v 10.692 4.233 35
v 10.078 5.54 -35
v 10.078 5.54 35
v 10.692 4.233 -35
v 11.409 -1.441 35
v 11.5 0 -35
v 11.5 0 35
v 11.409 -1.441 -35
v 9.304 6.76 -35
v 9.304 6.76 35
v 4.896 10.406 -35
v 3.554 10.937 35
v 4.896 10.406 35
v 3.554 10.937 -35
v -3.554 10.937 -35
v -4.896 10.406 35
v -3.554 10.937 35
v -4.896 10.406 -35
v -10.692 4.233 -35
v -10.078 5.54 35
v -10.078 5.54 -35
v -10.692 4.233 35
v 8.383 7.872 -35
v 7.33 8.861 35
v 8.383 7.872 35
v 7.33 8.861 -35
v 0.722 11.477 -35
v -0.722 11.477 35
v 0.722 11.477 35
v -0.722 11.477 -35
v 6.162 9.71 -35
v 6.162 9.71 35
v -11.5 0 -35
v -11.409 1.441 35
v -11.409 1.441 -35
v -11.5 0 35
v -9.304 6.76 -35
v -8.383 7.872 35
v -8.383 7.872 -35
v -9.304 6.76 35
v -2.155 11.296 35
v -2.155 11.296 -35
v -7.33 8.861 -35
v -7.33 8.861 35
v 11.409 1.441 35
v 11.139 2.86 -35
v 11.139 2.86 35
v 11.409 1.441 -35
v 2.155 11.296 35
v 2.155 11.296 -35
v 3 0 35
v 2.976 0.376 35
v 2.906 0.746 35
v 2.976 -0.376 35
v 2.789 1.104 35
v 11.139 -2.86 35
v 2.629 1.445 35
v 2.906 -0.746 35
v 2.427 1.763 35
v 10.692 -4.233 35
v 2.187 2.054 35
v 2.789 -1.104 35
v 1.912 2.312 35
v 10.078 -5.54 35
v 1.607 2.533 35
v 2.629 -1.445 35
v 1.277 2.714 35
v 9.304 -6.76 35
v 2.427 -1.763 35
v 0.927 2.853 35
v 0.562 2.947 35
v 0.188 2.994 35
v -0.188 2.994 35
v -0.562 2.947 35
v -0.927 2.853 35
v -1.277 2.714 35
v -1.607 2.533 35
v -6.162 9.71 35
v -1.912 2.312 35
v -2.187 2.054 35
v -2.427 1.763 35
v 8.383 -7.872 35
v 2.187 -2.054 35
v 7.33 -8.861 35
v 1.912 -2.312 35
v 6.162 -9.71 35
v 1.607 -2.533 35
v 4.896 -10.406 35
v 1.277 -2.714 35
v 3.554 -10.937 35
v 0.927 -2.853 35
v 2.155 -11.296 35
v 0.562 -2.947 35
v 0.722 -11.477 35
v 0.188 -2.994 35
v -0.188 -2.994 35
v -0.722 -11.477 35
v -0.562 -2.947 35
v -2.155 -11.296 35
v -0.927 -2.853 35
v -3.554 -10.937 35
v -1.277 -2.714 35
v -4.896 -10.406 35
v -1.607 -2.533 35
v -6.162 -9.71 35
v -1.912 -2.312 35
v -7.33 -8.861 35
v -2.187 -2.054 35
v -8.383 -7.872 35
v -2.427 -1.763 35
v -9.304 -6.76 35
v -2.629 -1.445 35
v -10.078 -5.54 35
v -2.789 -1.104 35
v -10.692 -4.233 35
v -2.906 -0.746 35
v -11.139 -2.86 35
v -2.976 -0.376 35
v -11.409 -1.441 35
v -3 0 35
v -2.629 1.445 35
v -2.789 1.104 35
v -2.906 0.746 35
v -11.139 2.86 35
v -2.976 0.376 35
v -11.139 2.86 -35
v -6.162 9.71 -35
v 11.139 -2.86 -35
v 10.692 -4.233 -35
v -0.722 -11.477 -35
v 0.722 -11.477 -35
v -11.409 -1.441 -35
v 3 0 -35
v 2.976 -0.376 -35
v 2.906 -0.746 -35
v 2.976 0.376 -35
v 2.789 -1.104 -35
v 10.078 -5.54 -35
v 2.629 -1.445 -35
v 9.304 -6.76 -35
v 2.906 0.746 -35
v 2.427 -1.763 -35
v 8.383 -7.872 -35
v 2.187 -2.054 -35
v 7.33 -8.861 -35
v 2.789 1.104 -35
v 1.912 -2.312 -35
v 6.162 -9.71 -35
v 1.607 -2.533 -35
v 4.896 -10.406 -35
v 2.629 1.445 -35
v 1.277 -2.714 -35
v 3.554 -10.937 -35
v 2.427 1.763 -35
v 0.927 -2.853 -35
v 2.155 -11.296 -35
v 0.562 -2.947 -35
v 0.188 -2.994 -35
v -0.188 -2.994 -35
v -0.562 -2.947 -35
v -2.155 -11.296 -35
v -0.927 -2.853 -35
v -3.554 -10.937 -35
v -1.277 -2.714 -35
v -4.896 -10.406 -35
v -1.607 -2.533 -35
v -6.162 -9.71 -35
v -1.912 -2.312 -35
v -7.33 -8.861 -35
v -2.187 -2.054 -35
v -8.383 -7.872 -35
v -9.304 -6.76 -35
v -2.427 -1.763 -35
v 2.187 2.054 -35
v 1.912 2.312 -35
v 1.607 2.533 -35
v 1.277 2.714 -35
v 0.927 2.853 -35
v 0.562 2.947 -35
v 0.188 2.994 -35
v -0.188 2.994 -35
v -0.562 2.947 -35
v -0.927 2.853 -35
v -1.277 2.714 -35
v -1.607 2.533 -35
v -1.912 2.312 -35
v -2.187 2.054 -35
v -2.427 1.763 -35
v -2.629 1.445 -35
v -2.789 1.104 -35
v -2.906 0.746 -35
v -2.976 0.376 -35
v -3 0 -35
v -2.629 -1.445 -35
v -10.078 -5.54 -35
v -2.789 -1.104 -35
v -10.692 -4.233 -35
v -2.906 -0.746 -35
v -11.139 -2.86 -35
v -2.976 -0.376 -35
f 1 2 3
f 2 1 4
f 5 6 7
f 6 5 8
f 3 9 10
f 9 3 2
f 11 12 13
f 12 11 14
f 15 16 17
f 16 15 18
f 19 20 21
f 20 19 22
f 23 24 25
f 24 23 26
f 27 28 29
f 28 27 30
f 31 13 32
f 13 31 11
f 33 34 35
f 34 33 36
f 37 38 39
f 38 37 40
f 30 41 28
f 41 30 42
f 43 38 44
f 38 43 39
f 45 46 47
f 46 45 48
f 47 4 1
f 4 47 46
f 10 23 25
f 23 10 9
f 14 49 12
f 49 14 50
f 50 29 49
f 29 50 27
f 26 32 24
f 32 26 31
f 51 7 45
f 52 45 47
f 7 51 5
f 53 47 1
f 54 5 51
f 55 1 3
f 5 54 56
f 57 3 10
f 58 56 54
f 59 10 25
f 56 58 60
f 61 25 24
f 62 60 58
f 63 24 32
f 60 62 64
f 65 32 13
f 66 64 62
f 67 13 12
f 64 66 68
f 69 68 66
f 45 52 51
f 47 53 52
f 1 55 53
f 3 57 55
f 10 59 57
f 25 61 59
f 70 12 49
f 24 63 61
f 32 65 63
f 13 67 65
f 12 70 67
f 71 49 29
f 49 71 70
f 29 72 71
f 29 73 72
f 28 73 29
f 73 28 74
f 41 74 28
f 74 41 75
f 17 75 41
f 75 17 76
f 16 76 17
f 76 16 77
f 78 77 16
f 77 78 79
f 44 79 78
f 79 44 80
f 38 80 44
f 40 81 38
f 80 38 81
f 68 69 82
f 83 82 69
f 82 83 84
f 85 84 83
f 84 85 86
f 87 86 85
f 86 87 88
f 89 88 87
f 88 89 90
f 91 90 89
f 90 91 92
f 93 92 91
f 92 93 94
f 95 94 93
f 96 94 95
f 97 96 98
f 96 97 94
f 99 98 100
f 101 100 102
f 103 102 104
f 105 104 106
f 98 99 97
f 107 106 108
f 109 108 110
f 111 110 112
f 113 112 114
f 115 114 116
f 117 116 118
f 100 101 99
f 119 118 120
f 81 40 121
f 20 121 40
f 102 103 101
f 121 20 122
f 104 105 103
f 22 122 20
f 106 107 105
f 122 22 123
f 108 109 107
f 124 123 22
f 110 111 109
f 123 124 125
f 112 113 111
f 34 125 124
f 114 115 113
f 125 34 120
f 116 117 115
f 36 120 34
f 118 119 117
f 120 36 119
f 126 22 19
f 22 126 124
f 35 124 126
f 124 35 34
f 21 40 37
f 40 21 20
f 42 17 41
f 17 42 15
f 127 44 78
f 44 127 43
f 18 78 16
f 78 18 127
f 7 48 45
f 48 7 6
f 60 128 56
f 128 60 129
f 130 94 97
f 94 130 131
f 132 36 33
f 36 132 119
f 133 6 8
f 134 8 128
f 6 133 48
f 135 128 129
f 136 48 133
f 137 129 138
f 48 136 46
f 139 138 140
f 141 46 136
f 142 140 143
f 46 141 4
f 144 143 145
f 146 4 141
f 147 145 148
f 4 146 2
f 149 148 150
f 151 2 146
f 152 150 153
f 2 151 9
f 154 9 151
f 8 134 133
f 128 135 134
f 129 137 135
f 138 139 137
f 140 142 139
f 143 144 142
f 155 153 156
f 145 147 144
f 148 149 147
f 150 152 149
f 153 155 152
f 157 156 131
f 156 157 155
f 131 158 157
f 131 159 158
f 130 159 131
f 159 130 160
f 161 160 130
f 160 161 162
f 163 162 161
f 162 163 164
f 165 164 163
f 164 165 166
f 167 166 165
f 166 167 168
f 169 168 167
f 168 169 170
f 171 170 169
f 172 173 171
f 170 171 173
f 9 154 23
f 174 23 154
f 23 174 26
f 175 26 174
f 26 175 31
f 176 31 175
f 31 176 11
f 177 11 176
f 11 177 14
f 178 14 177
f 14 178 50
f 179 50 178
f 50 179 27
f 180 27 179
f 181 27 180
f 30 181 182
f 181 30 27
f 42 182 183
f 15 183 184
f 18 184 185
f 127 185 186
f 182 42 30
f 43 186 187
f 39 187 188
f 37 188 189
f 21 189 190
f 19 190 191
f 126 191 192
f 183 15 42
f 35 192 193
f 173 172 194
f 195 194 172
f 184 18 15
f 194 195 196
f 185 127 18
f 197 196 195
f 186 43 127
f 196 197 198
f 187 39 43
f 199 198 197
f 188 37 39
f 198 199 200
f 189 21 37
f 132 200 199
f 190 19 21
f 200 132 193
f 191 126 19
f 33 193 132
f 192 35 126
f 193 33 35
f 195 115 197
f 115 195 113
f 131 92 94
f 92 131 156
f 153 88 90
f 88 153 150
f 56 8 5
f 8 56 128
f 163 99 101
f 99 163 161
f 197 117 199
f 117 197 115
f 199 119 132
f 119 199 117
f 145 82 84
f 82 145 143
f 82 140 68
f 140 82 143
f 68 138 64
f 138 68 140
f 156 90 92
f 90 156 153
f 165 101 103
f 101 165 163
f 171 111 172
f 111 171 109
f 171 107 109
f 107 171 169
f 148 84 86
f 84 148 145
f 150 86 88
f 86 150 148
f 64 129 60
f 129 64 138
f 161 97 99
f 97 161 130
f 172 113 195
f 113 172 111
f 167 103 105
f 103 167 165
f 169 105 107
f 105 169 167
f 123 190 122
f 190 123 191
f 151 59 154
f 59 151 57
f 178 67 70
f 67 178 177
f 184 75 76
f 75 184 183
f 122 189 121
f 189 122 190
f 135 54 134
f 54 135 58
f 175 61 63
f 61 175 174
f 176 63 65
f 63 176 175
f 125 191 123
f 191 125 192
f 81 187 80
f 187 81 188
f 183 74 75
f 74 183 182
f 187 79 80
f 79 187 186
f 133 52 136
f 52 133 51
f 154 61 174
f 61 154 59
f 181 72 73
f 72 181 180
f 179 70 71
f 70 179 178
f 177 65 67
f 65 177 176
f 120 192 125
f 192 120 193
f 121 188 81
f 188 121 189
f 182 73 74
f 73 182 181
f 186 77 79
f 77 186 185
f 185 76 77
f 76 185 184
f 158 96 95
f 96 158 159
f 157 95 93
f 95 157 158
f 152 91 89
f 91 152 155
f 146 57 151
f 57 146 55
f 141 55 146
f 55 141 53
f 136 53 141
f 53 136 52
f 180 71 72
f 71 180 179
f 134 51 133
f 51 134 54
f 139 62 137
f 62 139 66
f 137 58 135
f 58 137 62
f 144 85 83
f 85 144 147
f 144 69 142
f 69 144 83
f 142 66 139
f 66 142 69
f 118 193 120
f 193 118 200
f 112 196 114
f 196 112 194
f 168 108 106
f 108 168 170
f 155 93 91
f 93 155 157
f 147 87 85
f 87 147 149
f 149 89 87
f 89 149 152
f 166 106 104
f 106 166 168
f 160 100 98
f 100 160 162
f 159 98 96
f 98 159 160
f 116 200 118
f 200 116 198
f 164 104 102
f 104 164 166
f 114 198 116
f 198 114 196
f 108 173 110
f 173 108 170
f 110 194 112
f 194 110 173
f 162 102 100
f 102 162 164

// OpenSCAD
$fn = 50;


difference() {
	union() {
		translate(v = [0, 0, -35.0000000000]) {
			cylinder(h = 70, r = 11.5000000000);
		}
	}
	union() {
		translate(v = [0, 0, -100.0000000000]) {
			cylinder(h = 200, r = 3);
		}
	}
}
